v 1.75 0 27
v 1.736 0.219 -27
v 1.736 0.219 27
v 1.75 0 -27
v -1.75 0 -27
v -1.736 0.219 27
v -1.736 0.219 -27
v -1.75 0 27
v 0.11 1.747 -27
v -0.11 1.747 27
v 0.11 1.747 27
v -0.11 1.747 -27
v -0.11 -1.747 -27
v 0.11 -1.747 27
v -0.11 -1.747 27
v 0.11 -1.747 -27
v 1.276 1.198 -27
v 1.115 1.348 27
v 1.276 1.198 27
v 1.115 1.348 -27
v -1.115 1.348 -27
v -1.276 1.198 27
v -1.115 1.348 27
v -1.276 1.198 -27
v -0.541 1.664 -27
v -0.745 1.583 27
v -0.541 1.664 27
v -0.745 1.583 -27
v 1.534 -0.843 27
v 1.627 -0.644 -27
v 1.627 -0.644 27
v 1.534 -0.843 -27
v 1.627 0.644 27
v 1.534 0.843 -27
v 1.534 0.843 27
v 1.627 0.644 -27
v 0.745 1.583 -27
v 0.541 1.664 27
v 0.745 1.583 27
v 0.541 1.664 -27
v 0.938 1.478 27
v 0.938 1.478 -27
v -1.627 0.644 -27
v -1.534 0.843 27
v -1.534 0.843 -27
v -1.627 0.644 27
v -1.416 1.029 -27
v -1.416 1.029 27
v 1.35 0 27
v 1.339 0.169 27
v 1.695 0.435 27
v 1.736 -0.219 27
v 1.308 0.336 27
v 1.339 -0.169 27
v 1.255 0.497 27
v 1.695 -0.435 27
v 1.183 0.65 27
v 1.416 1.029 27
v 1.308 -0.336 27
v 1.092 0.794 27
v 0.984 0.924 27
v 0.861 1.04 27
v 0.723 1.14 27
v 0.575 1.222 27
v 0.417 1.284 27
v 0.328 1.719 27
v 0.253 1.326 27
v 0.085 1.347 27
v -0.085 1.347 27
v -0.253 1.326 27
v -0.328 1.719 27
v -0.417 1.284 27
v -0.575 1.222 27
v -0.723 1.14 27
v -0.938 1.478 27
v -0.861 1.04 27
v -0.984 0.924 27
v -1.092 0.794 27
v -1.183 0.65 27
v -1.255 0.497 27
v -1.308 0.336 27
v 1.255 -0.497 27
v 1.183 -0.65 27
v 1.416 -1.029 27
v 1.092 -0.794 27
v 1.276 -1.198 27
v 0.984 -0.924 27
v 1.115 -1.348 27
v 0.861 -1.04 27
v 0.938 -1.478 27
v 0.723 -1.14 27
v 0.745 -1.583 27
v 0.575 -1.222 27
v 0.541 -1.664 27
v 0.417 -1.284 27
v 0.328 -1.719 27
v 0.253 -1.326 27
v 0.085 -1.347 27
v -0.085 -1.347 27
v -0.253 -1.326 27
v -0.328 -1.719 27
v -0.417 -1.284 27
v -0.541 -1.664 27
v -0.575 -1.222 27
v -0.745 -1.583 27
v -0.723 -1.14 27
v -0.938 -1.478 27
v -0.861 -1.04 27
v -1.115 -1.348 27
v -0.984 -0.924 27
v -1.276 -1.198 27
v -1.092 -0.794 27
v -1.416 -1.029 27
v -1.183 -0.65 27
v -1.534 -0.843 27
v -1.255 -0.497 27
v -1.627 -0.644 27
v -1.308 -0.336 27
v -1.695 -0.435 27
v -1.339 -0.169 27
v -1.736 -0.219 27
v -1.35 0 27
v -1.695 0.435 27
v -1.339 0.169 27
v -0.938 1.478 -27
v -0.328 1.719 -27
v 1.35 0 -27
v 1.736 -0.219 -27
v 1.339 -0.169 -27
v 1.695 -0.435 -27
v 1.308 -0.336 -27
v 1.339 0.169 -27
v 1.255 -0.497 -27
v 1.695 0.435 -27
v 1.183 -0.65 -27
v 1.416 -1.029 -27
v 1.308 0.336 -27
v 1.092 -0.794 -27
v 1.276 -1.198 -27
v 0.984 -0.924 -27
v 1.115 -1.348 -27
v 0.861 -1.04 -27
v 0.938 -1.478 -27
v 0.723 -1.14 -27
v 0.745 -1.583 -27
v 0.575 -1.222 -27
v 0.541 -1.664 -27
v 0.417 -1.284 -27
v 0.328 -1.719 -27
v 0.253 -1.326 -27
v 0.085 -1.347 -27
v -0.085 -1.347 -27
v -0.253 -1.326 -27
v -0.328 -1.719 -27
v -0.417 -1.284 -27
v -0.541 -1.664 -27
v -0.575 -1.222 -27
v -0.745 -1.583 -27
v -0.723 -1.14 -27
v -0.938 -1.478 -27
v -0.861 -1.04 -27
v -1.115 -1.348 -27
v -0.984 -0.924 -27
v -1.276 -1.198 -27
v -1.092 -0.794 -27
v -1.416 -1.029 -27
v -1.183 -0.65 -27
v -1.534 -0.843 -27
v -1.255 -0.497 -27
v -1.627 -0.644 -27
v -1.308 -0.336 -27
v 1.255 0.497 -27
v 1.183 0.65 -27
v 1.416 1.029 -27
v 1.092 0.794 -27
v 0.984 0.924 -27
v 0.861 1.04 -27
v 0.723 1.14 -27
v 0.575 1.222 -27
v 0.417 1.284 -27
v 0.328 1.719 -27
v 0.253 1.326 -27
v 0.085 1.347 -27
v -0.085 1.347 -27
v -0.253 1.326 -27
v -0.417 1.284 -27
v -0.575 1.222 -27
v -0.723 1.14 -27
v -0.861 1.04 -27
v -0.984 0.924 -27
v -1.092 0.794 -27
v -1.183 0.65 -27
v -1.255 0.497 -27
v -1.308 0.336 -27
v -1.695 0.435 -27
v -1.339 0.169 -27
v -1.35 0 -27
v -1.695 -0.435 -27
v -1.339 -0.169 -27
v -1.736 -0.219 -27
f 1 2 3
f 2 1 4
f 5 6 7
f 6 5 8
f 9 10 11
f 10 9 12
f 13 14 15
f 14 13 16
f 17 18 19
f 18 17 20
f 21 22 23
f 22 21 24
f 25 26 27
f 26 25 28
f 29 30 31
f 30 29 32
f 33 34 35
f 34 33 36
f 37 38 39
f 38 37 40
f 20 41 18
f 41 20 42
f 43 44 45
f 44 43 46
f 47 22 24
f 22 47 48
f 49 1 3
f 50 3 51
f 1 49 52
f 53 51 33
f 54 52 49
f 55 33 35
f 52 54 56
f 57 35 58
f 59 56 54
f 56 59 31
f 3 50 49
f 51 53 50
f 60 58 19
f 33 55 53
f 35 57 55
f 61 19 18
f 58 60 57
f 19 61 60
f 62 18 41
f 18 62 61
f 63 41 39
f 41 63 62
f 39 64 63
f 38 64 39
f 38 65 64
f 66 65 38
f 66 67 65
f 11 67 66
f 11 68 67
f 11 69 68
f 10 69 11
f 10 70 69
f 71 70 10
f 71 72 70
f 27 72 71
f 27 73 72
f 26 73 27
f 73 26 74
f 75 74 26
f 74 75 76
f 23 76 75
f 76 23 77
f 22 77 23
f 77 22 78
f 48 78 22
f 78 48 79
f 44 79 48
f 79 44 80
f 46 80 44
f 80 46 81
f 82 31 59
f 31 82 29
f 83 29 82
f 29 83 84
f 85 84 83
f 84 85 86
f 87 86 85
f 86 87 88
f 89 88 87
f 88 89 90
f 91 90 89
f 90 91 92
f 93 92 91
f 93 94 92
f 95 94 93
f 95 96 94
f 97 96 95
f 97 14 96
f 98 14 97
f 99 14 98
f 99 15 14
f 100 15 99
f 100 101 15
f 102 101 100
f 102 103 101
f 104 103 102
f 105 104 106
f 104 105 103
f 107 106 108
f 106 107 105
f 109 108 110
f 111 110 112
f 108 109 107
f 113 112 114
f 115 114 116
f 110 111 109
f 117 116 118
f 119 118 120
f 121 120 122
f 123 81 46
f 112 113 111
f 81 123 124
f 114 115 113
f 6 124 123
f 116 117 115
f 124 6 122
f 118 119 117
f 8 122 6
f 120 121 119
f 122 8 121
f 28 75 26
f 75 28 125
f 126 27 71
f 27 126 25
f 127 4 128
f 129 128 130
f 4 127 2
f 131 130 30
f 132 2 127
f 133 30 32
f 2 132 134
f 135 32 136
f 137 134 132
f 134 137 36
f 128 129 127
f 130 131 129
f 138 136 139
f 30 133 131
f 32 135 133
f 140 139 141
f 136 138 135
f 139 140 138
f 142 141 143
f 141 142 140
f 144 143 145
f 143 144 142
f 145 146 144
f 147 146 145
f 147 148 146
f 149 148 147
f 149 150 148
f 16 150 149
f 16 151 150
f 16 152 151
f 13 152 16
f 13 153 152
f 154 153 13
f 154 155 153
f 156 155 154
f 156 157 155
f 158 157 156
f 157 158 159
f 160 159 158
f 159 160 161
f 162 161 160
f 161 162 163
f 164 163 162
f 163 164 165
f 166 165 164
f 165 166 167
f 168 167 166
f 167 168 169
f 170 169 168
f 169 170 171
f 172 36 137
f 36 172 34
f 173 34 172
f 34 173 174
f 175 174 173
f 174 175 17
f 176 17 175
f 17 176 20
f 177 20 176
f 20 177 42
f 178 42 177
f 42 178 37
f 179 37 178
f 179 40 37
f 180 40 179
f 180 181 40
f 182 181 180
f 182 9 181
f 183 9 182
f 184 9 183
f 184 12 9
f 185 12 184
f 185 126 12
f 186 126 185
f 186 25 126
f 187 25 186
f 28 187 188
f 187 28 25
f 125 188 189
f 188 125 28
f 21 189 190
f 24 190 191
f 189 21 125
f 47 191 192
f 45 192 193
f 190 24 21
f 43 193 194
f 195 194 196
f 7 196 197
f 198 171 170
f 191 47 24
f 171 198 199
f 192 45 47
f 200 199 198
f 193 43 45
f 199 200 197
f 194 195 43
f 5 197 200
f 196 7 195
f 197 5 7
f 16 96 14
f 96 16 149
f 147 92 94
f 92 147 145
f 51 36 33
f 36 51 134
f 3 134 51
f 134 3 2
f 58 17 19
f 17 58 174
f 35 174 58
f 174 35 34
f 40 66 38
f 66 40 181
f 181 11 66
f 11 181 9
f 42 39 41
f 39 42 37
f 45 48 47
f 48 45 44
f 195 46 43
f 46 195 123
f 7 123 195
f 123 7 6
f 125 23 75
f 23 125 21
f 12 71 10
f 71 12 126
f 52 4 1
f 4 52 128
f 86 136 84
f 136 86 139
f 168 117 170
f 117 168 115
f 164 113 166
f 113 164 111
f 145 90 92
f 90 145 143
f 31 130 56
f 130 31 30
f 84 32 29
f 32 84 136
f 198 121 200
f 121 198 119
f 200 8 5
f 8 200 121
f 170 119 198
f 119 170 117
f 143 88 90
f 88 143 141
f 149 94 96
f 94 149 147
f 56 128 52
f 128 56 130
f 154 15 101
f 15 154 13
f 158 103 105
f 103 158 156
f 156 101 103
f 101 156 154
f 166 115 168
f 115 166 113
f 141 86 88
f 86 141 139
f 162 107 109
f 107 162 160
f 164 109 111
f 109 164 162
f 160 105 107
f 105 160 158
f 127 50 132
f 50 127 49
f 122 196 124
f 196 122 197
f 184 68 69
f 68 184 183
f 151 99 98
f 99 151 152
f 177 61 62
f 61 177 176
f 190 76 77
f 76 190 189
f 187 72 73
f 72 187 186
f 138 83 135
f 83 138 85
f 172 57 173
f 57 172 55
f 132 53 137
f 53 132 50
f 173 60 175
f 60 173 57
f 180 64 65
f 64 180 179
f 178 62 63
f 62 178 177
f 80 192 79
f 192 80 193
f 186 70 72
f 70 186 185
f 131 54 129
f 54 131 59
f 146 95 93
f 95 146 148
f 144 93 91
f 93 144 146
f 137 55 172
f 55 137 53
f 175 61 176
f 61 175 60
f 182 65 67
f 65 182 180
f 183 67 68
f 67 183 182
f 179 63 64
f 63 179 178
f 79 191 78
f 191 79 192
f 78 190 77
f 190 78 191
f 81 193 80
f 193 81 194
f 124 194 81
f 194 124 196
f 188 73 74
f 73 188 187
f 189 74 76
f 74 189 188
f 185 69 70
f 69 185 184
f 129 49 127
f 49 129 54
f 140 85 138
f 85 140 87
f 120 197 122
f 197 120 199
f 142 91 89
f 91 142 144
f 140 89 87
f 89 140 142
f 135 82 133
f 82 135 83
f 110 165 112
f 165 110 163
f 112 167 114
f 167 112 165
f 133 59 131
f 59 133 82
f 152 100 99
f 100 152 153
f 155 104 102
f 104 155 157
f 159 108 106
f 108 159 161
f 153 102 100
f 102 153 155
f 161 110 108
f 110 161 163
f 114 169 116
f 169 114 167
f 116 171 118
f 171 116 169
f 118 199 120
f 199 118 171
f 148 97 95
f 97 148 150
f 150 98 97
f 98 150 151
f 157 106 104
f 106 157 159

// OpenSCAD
$fn = 50;


difference() {
	union() {
		translate(v = [0, 0, -27.0000000000]) {
			cylinder(h = 54, r = 1.7500000000);
		}
	}
	union() {
		translate(v = [0, 0, -100.0000000000]) {
			cylinder(h = 200, r = 1.3500000000);
		}
	}
}
